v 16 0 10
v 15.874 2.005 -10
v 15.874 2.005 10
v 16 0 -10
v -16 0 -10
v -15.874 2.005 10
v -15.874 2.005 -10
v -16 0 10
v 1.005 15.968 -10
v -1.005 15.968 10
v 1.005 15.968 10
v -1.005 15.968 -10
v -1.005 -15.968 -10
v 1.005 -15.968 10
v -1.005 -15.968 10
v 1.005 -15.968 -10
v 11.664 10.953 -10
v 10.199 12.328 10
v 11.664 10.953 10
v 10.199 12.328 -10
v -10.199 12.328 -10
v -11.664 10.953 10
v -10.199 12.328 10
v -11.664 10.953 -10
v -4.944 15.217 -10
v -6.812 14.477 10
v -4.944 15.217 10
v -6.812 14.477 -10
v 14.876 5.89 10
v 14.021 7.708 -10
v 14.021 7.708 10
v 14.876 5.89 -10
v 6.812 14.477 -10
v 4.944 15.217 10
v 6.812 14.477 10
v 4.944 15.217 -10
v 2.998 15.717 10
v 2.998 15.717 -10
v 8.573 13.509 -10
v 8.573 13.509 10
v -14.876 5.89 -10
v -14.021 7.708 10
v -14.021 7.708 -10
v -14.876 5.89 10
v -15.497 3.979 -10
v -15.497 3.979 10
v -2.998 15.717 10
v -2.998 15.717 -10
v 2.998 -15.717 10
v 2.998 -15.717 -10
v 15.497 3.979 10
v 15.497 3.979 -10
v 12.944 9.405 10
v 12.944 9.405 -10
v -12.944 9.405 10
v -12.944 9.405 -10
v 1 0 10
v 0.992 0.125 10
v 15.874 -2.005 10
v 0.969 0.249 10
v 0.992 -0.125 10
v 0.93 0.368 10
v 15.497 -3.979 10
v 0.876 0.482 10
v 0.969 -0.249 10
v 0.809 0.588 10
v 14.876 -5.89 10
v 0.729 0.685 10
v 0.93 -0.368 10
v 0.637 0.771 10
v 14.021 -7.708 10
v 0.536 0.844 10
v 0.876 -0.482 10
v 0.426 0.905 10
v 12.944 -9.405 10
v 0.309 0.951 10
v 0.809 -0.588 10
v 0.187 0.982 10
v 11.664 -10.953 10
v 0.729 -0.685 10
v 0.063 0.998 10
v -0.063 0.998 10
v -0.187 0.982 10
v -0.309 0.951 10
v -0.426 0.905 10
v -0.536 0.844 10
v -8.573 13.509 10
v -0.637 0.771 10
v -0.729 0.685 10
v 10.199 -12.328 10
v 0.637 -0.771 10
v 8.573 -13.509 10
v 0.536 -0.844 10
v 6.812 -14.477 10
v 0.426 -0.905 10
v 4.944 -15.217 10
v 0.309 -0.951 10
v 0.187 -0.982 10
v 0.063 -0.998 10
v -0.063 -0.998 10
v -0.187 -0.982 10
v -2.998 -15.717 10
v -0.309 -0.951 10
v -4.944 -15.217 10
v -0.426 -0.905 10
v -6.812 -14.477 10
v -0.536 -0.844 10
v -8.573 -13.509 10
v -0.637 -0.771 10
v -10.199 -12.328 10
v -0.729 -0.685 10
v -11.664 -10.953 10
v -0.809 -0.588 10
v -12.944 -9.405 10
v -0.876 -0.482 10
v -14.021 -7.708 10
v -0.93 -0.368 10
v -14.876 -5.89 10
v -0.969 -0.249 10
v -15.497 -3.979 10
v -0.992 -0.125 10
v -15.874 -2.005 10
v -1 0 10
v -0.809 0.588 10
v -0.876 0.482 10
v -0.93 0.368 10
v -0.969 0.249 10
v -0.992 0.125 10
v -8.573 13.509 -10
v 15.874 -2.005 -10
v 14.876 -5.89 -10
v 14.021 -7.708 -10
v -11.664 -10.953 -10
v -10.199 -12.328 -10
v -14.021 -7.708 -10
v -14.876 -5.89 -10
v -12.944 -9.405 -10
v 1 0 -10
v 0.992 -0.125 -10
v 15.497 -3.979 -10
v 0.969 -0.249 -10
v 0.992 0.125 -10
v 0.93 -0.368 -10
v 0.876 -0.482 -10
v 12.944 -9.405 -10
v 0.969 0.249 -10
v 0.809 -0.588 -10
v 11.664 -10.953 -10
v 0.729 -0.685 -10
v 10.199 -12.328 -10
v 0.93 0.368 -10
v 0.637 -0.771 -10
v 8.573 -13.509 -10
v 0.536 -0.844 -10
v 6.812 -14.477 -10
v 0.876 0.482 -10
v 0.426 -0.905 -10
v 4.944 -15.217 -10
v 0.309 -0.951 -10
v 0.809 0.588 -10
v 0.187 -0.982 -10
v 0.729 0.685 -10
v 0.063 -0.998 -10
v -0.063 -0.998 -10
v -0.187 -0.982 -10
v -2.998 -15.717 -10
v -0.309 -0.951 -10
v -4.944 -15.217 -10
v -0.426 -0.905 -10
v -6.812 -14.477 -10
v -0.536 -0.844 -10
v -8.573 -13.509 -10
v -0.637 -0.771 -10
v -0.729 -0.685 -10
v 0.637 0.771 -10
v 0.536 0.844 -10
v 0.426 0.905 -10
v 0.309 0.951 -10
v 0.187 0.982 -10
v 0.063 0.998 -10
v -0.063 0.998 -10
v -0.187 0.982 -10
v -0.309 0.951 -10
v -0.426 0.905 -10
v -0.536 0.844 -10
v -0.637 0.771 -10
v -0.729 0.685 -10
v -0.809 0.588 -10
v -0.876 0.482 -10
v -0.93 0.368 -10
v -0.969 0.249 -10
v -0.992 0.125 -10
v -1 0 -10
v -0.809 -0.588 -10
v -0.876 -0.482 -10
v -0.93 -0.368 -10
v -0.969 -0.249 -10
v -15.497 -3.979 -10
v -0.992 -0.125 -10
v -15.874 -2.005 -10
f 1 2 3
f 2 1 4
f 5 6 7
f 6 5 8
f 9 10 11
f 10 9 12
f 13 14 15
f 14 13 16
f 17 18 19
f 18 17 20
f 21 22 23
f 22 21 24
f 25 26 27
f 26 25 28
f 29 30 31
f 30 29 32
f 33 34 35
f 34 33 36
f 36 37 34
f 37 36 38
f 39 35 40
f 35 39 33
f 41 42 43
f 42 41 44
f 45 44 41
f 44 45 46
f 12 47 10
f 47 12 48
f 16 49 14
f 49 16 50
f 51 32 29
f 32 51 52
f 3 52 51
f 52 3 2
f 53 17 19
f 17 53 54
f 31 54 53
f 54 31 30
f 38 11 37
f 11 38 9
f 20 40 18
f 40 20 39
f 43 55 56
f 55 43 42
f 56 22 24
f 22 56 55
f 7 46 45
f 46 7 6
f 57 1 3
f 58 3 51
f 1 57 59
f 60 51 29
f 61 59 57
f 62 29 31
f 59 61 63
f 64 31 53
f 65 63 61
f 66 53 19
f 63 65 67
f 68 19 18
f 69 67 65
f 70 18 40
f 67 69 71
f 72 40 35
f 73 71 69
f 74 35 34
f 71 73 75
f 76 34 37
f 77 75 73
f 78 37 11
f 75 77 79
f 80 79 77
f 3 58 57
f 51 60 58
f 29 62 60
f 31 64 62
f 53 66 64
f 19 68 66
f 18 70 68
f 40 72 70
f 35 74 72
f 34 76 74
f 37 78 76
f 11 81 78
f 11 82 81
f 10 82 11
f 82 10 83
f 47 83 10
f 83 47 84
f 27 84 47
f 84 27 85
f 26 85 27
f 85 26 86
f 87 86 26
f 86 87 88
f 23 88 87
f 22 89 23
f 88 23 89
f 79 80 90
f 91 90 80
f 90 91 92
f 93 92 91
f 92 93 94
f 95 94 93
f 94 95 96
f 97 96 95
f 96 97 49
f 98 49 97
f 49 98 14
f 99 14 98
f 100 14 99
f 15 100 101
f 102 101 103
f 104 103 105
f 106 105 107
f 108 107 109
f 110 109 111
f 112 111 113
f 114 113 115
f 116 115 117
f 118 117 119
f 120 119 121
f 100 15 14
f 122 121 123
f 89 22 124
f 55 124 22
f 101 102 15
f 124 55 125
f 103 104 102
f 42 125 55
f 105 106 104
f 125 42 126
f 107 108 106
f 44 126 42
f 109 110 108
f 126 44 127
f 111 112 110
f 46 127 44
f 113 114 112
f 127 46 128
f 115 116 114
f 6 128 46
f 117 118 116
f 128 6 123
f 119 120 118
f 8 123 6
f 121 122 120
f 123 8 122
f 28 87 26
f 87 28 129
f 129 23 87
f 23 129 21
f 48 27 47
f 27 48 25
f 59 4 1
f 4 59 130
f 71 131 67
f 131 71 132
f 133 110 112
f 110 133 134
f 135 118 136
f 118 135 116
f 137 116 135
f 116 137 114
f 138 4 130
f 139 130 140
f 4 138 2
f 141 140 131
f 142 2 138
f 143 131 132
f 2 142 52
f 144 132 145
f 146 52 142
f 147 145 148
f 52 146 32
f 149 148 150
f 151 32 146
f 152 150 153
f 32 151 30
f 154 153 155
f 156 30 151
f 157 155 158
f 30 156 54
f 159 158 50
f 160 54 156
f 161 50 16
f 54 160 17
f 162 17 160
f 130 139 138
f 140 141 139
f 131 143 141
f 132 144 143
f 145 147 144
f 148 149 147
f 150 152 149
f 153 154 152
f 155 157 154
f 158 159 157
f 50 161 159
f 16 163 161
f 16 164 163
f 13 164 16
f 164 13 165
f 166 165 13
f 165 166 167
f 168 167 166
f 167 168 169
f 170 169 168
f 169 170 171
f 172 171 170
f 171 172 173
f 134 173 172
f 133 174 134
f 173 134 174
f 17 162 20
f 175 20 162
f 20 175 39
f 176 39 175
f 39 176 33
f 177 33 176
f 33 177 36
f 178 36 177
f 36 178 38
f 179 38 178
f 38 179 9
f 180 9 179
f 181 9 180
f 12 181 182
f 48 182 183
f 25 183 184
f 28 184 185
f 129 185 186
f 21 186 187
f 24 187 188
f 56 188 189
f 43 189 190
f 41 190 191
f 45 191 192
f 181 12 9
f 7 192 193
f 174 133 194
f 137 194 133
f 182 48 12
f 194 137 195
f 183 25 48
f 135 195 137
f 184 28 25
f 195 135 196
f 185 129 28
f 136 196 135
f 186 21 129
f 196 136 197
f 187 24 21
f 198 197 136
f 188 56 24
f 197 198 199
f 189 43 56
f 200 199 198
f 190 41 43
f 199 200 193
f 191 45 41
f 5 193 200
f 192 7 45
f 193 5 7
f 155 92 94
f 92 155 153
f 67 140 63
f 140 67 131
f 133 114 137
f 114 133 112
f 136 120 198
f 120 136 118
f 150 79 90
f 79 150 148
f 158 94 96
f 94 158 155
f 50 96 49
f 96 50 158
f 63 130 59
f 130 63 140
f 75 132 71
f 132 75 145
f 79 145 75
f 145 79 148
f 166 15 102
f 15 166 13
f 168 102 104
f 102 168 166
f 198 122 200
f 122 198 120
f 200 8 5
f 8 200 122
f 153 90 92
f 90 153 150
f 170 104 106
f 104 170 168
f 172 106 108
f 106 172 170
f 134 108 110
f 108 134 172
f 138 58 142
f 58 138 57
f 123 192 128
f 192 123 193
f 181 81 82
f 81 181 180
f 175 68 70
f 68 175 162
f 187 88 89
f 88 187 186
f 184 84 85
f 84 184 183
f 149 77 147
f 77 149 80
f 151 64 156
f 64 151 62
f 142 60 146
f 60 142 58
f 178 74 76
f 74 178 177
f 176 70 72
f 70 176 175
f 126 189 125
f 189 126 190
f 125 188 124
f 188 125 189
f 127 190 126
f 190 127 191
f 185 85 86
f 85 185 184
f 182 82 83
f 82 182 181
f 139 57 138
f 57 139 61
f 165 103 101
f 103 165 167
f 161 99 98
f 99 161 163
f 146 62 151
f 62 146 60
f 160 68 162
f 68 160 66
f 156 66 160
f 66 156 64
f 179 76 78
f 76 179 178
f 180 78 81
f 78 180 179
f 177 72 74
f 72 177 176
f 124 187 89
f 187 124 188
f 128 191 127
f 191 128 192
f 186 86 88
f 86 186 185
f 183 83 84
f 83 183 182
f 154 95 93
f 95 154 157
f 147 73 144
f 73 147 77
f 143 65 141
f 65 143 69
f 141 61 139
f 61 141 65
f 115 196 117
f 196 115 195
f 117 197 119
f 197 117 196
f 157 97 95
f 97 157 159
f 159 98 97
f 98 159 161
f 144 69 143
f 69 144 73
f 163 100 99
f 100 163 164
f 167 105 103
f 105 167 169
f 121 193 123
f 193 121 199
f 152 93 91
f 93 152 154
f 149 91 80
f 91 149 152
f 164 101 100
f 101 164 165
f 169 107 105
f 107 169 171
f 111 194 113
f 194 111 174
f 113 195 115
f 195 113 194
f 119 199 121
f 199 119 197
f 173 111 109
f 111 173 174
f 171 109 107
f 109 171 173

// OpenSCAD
$fn = 50;


difference() {
	union() {
		translate(v = [0, 0, -10.0000000000]) {
			cylinder(h = 20, r = 16.0000000000);
		}
	}
	union() {
		translate(v = [0, 0, -100.0000000000]) {
			cylinder(h = 200, r = 1.0000000000);
		}
	}
}
